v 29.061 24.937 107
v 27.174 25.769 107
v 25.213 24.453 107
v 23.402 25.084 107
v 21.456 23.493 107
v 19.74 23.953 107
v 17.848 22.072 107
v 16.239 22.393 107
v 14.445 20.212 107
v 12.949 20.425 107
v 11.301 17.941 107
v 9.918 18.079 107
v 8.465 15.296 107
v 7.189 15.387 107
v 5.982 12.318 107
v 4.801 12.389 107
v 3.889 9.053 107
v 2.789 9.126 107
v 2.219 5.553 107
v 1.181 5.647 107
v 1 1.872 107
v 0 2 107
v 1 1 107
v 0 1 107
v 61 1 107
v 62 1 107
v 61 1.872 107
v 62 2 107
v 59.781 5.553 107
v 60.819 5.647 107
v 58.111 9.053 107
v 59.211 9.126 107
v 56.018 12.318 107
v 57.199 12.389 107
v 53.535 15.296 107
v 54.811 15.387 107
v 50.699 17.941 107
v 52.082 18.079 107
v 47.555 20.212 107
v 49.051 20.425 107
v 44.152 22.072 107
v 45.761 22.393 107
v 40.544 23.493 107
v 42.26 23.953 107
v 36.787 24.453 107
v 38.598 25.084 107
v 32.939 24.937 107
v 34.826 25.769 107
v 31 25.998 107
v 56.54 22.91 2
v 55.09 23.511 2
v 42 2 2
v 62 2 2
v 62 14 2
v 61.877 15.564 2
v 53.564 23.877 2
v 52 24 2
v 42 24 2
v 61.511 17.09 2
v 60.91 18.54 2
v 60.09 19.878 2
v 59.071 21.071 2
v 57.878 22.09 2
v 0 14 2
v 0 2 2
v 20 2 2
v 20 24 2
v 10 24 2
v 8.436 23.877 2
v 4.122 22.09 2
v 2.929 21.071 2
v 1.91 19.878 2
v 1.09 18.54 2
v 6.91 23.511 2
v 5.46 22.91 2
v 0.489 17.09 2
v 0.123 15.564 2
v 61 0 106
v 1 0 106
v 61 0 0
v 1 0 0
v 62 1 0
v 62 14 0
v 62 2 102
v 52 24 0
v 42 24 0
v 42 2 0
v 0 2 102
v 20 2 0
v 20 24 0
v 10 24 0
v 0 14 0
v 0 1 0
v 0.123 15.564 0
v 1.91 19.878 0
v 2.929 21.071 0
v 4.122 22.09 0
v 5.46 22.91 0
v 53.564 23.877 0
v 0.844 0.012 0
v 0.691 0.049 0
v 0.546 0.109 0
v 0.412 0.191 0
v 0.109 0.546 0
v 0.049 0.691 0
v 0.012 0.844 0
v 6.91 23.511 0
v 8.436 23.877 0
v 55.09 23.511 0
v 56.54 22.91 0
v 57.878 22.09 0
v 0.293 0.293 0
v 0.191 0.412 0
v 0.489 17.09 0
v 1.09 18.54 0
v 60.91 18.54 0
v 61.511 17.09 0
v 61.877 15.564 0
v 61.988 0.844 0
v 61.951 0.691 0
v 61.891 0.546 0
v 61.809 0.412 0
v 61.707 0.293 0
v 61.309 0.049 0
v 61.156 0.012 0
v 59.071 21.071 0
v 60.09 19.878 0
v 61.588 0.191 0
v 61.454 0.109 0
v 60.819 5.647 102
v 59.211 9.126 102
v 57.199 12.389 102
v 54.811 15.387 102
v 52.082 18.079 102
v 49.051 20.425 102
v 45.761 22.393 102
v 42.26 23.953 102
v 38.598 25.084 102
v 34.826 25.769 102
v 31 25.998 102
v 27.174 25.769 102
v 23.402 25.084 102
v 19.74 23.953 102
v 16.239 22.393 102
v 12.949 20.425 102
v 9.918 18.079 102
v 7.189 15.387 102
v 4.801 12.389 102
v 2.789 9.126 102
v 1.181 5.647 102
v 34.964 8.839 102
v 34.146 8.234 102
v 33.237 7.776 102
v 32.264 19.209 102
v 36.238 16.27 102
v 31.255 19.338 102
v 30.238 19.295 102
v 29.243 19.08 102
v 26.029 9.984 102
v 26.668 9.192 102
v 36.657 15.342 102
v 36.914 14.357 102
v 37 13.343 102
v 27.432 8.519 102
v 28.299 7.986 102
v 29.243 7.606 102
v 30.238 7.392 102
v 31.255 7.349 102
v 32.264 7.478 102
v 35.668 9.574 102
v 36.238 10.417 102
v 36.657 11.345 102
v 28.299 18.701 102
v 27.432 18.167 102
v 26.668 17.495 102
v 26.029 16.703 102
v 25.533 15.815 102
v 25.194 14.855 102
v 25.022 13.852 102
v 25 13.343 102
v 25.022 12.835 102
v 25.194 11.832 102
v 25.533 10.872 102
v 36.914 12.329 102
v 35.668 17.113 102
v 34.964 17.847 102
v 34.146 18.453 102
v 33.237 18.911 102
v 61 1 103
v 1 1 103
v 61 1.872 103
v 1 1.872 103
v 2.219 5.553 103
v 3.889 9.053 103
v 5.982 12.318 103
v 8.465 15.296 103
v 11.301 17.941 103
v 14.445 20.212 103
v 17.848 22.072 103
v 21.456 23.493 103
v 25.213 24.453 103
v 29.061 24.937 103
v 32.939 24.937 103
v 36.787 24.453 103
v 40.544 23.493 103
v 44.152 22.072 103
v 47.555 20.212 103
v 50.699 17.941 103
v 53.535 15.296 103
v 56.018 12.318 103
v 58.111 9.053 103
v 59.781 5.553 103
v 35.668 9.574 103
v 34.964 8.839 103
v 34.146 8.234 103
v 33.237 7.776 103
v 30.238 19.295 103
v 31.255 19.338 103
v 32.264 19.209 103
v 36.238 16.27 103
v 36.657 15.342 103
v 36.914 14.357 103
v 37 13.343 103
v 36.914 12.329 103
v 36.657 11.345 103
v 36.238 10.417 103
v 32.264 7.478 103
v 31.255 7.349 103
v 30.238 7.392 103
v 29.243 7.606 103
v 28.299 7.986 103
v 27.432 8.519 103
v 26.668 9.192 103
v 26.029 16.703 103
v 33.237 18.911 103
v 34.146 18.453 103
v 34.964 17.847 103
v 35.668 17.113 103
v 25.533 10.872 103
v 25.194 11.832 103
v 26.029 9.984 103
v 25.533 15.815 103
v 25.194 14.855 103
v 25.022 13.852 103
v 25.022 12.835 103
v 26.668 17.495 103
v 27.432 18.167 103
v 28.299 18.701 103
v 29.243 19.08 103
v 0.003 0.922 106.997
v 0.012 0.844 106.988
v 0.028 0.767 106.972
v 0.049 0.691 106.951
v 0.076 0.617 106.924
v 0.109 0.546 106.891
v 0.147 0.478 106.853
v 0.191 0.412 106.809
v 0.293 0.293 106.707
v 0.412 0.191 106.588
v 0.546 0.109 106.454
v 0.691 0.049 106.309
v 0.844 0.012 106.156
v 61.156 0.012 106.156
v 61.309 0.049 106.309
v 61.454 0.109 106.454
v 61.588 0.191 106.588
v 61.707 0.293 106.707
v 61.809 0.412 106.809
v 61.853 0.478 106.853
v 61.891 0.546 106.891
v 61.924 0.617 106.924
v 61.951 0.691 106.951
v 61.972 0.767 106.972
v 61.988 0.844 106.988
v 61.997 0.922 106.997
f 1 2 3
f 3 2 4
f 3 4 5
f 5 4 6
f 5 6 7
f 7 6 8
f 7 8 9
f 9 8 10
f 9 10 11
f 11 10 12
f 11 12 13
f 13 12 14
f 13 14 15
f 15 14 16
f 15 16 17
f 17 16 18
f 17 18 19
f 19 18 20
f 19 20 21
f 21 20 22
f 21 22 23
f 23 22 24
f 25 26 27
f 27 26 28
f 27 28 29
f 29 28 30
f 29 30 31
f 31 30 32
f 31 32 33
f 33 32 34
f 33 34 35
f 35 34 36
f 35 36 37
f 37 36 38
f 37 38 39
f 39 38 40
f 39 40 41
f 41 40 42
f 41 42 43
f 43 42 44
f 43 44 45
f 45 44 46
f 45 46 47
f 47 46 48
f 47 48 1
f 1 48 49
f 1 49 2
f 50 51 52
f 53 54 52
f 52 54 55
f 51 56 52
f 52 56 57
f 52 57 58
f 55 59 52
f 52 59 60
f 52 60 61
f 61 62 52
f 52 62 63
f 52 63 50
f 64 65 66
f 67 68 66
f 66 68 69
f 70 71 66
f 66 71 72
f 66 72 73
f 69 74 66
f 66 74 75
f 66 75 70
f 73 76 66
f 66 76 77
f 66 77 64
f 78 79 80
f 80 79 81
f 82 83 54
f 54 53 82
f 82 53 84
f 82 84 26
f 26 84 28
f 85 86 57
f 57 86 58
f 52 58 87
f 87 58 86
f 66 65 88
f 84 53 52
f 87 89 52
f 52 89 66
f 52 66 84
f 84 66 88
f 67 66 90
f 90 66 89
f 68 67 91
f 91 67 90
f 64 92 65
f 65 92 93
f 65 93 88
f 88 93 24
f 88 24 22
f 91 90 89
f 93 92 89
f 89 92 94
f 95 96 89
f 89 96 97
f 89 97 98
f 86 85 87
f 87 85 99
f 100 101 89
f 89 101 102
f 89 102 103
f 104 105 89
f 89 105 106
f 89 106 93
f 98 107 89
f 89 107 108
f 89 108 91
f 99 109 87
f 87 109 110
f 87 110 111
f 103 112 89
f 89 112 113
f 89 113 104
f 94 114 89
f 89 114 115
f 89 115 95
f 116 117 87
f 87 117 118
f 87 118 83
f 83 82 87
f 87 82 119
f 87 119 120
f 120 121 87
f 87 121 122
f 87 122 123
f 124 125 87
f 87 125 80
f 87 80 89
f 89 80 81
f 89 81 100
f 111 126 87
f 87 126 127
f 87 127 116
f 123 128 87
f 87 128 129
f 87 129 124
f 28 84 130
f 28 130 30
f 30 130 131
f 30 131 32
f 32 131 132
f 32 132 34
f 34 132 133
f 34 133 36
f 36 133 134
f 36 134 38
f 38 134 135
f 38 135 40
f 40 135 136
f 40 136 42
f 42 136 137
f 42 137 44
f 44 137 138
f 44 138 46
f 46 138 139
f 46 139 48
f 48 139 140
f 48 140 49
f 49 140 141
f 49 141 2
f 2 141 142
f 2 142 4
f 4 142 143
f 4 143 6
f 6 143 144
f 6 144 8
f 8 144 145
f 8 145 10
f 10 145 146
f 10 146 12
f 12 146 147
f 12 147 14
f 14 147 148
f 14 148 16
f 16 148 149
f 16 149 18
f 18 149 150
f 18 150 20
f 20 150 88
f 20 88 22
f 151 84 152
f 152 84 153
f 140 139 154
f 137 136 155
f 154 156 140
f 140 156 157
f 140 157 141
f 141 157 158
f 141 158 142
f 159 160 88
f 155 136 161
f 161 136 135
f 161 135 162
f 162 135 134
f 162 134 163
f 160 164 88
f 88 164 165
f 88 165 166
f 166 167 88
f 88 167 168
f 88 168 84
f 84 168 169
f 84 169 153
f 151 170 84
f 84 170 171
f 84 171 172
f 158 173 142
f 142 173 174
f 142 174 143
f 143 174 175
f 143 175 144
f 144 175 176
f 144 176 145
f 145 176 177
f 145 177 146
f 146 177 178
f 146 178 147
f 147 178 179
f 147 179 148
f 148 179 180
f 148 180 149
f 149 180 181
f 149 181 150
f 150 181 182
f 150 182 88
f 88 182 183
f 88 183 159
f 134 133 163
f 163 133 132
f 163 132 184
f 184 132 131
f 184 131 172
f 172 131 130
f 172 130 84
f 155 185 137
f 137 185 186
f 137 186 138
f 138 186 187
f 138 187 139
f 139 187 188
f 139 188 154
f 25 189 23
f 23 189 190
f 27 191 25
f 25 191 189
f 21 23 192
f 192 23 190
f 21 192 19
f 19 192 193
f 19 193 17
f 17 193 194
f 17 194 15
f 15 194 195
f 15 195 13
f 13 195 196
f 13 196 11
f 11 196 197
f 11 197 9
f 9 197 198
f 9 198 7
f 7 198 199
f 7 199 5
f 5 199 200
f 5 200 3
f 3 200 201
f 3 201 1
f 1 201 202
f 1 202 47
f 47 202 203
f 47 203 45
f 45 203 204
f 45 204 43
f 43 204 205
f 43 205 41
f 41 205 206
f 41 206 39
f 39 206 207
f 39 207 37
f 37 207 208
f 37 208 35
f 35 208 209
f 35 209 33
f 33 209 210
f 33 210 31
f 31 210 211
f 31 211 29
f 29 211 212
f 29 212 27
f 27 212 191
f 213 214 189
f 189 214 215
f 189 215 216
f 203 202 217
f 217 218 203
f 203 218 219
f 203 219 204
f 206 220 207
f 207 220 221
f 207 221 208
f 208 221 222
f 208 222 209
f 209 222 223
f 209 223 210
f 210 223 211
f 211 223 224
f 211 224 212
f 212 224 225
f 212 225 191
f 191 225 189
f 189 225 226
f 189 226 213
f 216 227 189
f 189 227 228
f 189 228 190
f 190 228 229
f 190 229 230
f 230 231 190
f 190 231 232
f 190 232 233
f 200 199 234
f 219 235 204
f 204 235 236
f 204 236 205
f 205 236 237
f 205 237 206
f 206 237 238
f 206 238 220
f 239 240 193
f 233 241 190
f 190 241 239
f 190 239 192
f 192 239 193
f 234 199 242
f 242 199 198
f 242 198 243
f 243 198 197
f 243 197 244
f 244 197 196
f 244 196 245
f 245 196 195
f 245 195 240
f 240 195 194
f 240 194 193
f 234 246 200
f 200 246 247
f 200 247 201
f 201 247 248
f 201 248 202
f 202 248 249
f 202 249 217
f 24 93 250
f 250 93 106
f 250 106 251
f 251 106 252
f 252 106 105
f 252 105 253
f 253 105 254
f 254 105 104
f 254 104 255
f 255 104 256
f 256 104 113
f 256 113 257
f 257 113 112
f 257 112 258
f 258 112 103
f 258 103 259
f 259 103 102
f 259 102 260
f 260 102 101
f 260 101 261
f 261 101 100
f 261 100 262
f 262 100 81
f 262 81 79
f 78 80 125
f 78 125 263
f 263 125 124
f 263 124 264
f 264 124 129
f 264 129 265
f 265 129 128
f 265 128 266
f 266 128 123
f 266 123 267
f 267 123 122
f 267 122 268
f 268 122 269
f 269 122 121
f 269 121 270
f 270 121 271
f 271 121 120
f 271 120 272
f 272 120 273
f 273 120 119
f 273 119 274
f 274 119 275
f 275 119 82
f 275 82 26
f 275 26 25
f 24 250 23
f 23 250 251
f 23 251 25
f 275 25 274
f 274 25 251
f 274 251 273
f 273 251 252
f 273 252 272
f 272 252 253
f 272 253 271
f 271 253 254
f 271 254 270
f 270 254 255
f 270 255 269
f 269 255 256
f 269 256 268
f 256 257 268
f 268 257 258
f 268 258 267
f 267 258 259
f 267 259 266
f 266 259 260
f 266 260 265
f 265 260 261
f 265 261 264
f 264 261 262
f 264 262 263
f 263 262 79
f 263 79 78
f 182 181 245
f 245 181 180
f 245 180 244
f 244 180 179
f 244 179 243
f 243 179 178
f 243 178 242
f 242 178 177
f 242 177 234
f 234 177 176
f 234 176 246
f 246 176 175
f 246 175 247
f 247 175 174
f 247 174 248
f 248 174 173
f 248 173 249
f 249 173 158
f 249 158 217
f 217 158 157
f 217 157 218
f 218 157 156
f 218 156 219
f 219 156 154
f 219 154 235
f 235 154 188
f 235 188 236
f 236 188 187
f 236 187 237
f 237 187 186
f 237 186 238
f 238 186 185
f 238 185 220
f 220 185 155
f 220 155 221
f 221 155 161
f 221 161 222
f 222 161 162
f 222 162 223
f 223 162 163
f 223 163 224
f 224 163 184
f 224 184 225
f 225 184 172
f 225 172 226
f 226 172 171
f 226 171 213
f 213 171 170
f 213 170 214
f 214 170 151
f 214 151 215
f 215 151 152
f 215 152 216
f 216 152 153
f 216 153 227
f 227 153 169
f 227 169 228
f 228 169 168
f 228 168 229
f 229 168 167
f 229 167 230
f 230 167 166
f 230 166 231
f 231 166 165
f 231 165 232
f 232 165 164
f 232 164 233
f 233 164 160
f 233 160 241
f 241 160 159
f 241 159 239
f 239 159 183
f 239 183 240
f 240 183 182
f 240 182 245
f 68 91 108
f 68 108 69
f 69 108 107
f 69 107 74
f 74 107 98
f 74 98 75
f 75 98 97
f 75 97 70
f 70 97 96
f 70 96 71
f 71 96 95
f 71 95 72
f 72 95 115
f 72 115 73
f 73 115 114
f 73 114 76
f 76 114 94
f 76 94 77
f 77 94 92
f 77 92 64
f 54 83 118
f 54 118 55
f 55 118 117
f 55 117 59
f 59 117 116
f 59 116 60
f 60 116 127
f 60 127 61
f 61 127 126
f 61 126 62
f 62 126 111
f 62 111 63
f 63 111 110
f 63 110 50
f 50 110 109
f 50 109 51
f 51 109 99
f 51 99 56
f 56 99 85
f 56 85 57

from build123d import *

# Parameters (mm, degrees)
BOSS_EXTRUDE1_DEPTH = 2
SKETCH4_W           = 62
SKETCH4_H           = 2
BOSS_EXTRUDE2_DEPTH = 100
BOSS_EXTRUDE3_DEPTH = 5
SHELL1_START        = 103
SHELL1_DEPTH        = 4
FILLET1_R           = 1
SKETCH7_R           = 6
CUT_EXTRUDE1_DEPTH  = 2
FILLET2_R           = 10
FILLET3_R           = 10


# Read off the part's stored shape, not the designer's step: Shell1
with BuildPart() as part:
    # Sketch3 → Boss-Extrude1 (new body)
    with BuildSketch(Plane.XY):
        Polygon((0, 0), (0, 24), (20, 24), (20, 2), (42, 2), (42, 24), (62, 24), (62, 0), align=None)
    extrude(amount=BOSS_EXTRUDE1_DEPTH)

    # Sketch4 → Boss-Extrude2 (add)
    with BuildSketch(Plane.XY.offset(2)):
        with Locations((31, 1)):
            Rectangle(SKETCH4_W, SKETCH4_H)
    extrude(amount=BOSS_EXTRUDE2_DEPTH)

    # Sketch6 → Boss-Extrude3 (add)
    with BuildSketch(Plane.XY.offset(102)):
        with BuildLine():
            Line((0, 2), (0, 0))
            Line((0, 0), (62, 0))
            Line((62, 0), (62, 2))
            ThreePointArc((62, 2), (31, 25.997977773), (0, 2))
        make_face()
    extrude(amount=BOSS_EXTRUDE3_DEPTH)

    # Shell1 outline → Shell1 (cut)
    with BuildSketch(Plane.XY.offset(SHELL1_START)):
        with BuildLine():
            Line((1, 1), (61, 1))
            Line((61, 1), (61, 1.871659386))
            ThreePointArc((61, 1.871659386), (31, 24.997977773), (1, 1.871659386))
            Line((1, 1.871659386), (1, 1))
        make_face()
    extrude(amount=SHELL1_DEPTH, mode=Mode.SUBTRACT)

    # Fillet1
    fillet1_edges = [part.edges().sort_by_distance(p)[0] for p in [
        (0, 0, 53.5),
        (62, 0, 53.5),
        (31, 0, 107),
    ]]
    fillet(fillet1_edges, radius=FILLET1_R - 0.0001)  # a hair under: the kernel refuses the full size

    # Sketch7 → Cut-Extrude1 (cut)
    with BuildSketch(Plane.XY.offset(103)):
        with Locations((31, 13.343458138)):
            Circle(SKETCH7_R)
    extrude(amount=-CUT_EXTRUDE1_DEPTH, mode=Mode.SUBTRACT)

    # Fillet2
    fillet2_edges = [part.edges().sort_by_distance(p)[0] for p in [
        (0, 24, 1),
    ]]
    fillet(fillet2_edges, radius=FILLET2_R)

    # Fillet3
    fillet3_edges = [part.edges().sort_by_distance(p)[0] for p in [
        (62, 24, 1),
    ]]
    fillet(fillet3_edges, radius=FILLET3_R)


solid = part.part
